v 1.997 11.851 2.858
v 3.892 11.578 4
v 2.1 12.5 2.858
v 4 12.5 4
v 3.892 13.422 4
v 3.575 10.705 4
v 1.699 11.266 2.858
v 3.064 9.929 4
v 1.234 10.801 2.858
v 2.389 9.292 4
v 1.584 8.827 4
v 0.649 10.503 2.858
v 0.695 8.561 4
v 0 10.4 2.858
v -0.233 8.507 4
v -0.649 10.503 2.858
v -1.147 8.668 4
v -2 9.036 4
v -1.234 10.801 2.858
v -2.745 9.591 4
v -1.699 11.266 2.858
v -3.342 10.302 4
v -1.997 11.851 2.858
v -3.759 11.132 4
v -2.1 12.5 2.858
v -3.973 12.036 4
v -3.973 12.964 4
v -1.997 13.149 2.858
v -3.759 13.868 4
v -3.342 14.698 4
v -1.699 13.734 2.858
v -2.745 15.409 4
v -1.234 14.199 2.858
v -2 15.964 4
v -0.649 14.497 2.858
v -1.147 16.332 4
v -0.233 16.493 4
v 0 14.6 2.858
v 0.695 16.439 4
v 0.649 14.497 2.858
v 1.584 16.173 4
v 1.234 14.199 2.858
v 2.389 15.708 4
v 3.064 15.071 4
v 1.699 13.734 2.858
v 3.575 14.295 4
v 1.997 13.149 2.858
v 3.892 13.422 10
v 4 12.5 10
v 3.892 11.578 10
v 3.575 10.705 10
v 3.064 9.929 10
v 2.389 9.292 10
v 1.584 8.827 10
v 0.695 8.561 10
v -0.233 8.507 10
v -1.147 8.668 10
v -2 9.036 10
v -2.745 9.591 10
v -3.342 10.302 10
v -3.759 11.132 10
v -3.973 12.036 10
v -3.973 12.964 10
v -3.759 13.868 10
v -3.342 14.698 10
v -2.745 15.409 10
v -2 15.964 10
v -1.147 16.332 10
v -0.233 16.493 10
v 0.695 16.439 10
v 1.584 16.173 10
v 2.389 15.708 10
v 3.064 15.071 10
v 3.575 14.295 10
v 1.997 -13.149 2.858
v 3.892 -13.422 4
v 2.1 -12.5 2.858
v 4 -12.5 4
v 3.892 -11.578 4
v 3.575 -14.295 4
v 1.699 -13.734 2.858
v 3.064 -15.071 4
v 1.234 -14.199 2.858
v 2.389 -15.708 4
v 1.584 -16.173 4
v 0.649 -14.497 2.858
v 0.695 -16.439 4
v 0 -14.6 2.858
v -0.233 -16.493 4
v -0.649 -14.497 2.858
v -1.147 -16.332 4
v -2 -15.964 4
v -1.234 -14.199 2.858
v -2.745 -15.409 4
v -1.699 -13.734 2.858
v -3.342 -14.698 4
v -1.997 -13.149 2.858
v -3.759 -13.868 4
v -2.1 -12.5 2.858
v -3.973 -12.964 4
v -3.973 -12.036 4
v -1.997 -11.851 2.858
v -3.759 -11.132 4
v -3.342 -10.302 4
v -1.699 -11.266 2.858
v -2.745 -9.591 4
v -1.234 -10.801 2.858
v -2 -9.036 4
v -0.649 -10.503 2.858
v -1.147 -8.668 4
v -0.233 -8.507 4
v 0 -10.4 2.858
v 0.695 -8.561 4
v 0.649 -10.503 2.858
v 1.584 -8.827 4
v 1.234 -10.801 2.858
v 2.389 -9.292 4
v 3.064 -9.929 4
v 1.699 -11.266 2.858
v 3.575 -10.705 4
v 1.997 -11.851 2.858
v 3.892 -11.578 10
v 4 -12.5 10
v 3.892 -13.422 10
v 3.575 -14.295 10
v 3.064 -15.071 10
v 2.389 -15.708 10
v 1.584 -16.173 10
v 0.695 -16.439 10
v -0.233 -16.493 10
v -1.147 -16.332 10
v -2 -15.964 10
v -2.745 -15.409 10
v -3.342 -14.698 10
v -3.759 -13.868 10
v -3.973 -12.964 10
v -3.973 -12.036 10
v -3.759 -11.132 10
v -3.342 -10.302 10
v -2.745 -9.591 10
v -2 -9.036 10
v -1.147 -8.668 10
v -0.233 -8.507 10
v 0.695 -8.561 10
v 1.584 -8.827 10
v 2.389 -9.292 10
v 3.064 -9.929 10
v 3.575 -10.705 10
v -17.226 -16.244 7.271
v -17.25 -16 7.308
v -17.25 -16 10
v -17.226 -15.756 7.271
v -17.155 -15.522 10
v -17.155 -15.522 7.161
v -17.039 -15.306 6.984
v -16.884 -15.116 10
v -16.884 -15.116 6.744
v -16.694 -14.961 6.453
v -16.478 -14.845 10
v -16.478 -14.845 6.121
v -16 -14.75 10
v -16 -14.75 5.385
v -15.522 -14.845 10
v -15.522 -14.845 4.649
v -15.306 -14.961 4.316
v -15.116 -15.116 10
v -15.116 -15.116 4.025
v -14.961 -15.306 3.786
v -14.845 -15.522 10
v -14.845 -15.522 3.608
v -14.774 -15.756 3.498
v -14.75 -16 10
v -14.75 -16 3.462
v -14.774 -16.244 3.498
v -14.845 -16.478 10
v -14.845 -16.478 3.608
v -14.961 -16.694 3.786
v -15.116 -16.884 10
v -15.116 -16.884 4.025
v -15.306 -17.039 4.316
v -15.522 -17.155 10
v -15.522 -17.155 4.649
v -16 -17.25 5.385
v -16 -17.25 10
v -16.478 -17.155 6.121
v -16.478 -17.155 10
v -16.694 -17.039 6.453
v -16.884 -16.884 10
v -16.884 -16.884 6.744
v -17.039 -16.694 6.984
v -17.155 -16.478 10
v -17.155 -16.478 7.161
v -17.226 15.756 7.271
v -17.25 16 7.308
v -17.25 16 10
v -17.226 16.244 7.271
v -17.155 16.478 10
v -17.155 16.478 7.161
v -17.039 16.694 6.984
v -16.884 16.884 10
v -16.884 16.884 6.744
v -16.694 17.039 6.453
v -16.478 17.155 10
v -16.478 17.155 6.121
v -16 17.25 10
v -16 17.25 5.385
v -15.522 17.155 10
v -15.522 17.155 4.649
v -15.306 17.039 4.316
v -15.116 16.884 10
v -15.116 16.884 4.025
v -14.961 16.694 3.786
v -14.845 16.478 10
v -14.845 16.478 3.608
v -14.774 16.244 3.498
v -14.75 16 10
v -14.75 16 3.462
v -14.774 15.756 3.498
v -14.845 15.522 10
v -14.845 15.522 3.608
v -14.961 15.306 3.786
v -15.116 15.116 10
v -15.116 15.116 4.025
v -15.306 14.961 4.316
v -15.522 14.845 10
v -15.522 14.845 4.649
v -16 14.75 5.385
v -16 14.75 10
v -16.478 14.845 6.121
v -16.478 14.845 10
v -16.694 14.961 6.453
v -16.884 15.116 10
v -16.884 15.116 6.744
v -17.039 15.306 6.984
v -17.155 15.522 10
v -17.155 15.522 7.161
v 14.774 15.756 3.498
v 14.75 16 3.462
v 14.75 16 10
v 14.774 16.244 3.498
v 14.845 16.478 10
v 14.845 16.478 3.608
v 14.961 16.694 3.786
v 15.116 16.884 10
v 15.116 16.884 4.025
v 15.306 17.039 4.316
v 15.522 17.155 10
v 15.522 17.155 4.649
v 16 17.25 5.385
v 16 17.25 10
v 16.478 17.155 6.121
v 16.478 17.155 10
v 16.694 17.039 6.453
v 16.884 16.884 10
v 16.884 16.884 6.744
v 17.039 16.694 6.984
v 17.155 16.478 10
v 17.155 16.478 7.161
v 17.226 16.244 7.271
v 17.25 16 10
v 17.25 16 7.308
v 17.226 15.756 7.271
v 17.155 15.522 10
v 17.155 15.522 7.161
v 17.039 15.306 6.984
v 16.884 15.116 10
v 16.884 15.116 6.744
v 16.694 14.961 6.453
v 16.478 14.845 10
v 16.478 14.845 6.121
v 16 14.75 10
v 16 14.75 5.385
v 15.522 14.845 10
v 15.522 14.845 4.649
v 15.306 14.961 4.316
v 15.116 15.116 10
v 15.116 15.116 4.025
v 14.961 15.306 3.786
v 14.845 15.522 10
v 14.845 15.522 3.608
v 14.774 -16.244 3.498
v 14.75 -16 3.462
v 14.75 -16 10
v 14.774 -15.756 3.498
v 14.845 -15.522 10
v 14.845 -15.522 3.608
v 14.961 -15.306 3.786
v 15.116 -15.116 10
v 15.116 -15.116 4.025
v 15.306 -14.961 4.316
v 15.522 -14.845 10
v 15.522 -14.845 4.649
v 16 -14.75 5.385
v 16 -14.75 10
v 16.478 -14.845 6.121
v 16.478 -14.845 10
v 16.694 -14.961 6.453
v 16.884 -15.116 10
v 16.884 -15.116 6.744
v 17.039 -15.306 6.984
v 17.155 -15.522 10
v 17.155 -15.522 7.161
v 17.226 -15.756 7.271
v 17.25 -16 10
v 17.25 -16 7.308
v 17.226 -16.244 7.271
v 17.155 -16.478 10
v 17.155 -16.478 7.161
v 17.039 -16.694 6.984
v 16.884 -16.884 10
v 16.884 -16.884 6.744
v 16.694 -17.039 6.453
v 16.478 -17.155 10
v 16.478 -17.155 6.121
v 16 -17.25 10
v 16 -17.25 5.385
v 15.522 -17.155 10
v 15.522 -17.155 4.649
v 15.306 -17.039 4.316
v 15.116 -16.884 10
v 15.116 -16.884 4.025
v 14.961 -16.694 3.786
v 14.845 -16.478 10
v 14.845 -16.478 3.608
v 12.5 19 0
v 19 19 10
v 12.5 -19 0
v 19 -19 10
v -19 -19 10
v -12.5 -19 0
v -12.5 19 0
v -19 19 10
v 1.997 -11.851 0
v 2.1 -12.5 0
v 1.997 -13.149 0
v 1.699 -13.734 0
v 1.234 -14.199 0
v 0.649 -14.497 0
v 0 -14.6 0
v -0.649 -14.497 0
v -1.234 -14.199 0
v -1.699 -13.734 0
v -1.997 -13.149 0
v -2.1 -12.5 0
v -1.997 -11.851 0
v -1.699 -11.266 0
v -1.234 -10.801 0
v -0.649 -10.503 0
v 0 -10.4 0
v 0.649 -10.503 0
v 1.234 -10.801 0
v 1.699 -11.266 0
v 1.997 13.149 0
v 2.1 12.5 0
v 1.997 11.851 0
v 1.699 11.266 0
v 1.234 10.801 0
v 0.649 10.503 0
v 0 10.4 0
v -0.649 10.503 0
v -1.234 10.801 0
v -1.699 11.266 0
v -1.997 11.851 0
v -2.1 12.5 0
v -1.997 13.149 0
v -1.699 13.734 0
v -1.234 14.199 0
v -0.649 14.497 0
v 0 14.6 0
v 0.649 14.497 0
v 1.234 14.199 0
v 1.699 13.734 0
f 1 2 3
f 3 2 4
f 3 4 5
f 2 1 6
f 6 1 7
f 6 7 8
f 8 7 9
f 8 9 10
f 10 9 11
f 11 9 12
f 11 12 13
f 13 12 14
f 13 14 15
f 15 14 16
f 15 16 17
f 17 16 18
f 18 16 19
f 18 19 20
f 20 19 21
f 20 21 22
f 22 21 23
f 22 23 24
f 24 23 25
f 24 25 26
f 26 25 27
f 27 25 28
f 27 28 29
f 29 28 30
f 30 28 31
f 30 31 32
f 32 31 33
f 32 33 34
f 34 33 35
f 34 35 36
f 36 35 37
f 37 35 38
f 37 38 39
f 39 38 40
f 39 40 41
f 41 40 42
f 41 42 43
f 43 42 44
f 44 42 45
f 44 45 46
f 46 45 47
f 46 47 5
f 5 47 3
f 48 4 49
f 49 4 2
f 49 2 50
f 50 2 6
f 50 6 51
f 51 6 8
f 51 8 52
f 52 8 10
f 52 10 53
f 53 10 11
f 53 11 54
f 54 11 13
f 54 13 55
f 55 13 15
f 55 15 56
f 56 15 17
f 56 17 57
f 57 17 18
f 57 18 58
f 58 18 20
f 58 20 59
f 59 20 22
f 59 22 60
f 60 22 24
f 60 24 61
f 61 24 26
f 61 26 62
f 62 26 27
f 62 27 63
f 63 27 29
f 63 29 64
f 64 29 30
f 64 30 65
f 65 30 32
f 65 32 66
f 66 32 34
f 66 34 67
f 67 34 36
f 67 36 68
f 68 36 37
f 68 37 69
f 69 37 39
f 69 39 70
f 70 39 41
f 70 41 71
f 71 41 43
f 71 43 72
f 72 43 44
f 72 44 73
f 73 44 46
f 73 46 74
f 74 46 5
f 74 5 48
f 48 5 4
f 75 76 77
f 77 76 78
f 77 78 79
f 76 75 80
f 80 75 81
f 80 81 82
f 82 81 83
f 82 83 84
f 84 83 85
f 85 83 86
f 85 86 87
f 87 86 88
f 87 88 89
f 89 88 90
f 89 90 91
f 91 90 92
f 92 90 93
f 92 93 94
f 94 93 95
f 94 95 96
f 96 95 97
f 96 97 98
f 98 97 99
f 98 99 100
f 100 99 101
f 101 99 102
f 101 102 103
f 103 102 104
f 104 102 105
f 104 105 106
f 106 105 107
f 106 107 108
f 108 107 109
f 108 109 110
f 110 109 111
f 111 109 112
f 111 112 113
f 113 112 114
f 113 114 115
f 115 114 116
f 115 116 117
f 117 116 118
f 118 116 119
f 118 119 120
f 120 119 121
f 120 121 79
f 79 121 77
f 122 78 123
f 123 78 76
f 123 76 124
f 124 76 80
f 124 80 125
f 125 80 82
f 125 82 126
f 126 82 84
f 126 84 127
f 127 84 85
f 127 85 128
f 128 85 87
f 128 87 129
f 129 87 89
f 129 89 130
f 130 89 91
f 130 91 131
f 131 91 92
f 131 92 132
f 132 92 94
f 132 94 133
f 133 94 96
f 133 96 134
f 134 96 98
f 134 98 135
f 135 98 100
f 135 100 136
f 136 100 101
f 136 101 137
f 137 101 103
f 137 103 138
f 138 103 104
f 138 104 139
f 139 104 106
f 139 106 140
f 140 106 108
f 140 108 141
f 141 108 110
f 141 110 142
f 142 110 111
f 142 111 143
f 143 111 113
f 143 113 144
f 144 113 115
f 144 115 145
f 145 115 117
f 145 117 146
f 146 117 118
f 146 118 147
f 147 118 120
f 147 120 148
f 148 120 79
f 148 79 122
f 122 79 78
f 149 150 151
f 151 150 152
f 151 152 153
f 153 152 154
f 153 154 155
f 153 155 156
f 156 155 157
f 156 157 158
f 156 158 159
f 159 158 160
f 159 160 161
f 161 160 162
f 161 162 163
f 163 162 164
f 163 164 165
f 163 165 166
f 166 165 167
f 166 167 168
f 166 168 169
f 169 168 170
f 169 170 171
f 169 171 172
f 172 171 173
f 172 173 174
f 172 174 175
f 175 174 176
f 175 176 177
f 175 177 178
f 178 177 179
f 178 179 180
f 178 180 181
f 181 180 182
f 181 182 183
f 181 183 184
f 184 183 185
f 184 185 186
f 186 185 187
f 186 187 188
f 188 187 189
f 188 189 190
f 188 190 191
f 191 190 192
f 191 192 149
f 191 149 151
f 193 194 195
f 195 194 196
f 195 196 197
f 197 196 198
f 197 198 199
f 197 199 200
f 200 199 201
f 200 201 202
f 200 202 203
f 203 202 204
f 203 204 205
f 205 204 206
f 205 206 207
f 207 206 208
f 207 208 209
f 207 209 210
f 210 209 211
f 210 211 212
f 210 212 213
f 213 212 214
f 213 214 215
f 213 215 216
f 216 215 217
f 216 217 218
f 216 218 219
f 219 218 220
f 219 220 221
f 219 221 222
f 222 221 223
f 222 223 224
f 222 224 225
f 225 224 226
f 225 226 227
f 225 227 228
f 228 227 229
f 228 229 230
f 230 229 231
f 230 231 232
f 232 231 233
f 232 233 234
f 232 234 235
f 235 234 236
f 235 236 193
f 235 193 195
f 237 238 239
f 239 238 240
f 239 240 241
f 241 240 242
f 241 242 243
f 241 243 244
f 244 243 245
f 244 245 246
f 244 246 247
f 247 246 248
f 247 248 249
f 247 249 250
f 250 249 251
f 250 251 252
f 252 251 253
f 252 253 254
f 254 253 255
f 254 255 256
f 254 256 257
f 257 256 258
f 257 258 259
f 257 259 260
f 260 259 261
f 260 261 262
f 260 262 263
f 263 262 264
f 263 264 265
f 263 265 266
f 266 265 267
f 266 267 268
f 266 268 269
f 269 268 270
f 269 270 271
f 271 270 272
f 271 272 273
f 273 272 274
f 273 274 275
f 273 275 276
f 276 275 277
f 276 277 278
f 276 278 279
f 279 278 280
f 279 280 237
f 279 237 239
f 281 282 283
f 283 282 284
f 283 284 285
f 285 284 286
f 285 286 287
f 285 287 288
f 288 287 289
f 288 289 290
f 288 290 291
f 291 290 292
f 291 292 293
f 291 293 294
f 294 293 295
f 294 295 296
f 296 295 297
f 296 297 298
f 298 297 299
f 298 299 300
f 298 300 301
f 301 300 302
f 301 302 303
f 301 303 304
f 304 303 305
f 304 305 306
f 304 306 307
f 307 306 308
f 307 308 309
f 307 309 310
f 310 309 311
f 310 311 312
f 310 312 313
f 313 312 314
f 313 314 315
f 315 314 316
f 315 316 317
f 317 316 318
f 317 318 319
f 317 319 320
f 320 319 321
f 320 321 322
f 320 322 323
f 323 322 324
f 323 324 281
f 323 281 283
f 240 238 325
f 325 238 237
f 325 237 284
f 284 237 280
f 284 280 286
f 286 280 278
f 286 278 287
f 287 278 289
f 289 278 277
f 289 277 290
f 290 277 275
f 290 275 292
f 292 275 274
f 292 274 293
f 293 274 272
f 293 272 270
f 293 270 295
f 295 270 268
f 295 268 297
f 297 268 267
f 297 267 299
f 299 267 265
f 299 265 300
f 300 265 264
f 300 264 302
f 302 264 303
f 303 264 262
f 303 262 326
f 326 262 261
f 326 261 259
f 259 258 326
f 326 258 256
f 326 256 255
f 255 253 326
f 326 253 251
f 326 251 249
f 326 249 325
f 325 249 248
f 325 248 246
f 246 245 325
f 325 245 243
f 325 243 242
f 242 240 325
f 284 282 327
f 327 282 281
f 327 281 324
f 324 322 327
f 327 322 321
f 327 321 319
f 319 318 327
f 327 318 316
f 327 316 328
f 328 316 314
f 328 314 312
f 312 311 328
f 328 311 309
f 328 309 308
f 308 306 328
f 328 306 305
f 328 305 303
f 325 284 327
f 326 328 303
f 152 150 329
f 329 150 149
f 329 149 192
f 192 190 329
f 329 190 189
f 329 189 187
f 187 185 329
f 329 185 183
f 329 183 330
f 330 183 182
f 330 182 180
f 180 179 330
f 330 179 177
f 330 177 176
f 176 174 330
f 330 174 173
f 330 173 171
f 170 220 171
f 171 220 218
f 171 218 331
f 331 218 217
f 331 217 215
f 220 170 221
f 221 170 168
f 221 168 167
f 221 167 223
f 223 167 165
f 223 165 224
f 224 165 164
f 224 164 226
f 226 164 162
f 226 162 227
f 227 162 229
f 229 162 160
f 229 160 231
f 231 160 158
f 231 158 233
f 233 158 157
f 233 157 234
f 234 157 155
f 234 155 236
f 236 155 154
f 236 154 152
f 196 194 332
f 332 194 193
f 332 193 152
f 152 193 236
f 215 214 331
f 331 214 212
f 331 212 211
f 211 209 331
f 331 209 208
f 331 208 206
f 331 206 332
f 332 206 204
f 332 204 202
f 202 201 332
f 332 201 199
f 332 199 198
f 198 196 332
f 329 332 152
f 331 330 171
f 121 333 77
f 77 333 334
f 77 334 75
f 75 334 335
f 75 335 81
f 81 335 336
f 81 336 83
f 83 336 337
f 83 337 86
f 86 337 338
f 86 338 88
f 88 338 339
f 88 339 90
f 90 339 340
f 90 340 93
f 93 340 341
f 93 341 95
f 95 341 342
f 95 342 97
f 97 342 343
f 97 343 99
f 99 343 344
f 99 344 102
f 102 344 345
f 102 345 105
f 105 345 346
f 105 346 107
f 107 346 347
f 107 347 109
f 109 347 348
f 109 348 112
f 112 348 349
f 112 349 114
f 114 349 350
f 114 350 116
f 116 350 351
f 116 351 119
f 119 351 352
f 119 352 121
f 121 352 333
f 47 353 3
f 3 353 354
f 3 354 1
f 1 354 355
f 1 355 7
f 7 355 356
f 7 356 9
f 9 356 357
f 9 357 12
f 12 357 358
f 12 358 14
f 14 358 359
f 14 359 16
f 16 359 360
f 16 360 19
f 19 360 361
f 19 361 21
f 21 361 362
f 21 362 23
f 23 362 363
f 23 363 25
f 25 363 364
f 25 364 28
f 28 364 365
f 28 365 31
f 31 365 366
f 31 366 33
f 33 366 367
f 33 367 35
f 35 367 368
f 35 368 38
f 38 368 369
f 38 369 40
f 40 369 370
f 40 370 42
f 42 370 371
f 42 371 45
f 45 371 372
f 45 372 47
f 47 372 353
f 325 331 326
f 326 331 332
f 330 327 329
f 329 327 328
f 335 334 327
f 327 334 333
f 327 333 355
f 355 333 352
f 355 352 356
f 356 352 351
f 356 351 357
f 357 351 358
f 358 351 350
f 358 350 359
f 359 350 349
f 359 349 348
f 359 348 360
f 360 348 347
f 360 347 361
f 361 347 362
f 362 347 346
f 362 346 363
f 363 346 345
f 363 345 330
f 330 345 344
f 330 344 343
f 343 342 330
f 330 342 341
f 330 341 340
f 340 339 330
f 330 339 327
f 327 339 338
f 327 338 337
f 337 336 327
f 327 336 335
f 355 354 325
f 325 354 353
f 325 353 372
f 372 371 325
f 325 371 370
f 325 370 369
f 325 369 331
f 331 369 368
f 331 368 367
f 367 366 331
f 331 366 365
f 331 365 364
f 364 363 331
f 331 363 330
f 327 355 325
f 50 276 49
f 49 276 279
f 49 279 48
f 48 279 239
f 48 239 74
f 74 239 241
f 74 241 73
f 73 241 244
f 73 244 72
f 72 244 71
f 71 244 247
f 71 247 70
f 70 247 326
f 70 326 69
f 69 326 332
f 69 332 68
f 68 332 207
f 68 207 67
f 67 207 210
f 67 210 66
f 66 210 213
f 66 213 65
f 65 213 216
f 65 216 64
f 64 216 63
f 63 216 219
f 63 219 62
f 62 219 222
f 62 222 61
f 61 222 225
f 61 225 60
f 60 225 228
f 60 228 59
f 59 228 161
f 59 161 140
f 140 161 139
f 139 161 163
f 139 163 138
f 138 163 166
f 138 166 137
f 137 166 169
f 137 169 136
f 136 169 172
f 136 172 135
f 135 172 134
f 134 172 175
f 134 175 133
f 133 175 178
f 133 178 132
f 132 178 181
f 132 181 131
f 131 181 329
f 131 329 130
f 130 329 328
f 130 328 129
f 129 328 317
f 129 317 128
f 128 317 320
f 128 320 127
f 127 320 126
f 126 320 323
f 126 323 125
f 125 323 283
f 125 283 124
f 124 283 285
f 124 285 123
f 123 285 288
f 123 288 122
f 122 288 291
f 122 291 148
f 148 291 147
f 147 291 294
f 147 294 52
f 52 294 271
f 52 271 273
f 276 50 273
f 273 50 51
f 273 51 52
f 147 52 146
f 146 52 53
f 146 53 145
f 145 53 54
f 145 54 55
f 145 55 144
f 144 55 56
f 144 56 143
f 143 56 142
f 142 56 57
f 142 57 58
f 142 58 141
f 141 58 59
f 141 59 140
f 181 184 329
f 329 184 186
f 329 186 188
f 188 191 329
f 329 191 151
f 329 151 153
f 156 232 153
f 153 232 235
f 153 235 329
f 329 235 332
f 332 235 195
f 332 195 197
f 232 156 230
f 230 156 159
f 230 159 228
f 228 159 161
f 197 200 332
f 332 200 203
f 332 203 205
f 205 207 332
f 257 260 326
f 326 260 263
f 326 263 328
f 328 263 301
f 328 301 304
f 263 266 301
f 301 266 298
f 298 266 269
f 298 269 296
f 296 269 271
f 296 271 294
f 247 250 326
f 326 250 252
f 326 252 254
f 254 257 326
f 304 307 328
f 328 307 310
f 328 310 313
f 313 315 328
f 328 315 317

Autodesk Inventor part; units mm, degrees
ref_plane "YZ Plane" through (0, 0, 0) normal (1, 0, 0) x (0, 1, 0)
ref_plane "XZ Plane" through (0, 0, 0) normal (0, 1, 0) x (-1, 0, 0)
ref_plane "XY Plane" through (0, 0, 0) normal (0, 0, 1) x (1, 0, 0)
sketch "Sketch1" plane through (0, 0, 0) normal (0, 0, 1) x (1, 0, 0)
  line L0 (12.5, -19) -> (-12.5, -19)
  line L1 (-12.5, -19) -> (-12.5, 19)
  line L2 (-12.5, 19) -> (12.5, 19)
  line L3 (12.5, 19) -> (12.5, -19)
  line L4 (12.5, -19) -> (-12.5, 19) construction
  line L5 (-12.5, -19) -> (12.5, 19) construction
  circle A0 centre (0, 12.5) radius 2.1
  circle A1 centre (0, -12.5) radius 2.1
  point P0 (0, 0)
  dimension "d0" = 25
  dimension "d1" = 38
  dimension "d2" = 4.2
  dimension "d3" = 4.2
  dimension "d4" = 12.5
  dimension "d5" = 12.5
extrude "Extrusion1" add sketch "Sketch1" along normal blind 10
sketch "Sketch2" plane through (-12.5, 19, 0) normal (0, 1, 0) x (1, 0, 0)
  line L0 (0, 0) -> (0, -10) projected
  line L1 (0, -10) -> (-6.5, -10)
  line L2 (-6.5, -10) -> (0, 0)
  line L3 (0, -10) -> (25, -10) projected
  line L4 (0, 0) -> (0, -10)
  line L5 (25, -10) -> (31.5, -10)
  line L6 (25, 0) -> (25, -10) projected
  line L7 (31.5, -10) -> (25, 0)
  line L8 (25, 0) -> (25, -10)
  point P0 (12.5, 0)
  dimension "d8" = 6.5
  dimension "d9" = 6.5
extrude "Extrusion2" add sketch "Sketch2" against normal up to surface (38 mm away)
sketch "Sketch3" plane through (0, 0, 10) normal (0, 0, 1) x (1, 0, 0)
  line L0 (-5.4088, 0) -> (7.7062, 0)
  line L1 (0, 5.8117) -> (0, -6.6687)
  point P0 (0, 0)
  point P1 (-16, 16)
  point P2 (16, 16)
  point P3 (-16, -16)
  point P4 (16, -16)
  dimension "d12" = 16
  dimension "d13" = 16
  dimension "d16" = 32
  dimension "d19" = 32
hole "Hole1" at (-16, 16, 10) at (16, 16, 10) at (-16, -16, 10) at (16, -16, 10) direction (0, 0, -1) diameter 2.5 depth 20 tip angle 118
hole "Hole2" at (0, -12.5, 10) direction (0, 0, -1) diameter 8 depth 6 tip angle 118
hole "Hole3" at (0, 12.5, 10) direction (0, 0, -1) diameter 8 depth 6 tip angle 118
properties part number "RDtoRC2-height10mm"
